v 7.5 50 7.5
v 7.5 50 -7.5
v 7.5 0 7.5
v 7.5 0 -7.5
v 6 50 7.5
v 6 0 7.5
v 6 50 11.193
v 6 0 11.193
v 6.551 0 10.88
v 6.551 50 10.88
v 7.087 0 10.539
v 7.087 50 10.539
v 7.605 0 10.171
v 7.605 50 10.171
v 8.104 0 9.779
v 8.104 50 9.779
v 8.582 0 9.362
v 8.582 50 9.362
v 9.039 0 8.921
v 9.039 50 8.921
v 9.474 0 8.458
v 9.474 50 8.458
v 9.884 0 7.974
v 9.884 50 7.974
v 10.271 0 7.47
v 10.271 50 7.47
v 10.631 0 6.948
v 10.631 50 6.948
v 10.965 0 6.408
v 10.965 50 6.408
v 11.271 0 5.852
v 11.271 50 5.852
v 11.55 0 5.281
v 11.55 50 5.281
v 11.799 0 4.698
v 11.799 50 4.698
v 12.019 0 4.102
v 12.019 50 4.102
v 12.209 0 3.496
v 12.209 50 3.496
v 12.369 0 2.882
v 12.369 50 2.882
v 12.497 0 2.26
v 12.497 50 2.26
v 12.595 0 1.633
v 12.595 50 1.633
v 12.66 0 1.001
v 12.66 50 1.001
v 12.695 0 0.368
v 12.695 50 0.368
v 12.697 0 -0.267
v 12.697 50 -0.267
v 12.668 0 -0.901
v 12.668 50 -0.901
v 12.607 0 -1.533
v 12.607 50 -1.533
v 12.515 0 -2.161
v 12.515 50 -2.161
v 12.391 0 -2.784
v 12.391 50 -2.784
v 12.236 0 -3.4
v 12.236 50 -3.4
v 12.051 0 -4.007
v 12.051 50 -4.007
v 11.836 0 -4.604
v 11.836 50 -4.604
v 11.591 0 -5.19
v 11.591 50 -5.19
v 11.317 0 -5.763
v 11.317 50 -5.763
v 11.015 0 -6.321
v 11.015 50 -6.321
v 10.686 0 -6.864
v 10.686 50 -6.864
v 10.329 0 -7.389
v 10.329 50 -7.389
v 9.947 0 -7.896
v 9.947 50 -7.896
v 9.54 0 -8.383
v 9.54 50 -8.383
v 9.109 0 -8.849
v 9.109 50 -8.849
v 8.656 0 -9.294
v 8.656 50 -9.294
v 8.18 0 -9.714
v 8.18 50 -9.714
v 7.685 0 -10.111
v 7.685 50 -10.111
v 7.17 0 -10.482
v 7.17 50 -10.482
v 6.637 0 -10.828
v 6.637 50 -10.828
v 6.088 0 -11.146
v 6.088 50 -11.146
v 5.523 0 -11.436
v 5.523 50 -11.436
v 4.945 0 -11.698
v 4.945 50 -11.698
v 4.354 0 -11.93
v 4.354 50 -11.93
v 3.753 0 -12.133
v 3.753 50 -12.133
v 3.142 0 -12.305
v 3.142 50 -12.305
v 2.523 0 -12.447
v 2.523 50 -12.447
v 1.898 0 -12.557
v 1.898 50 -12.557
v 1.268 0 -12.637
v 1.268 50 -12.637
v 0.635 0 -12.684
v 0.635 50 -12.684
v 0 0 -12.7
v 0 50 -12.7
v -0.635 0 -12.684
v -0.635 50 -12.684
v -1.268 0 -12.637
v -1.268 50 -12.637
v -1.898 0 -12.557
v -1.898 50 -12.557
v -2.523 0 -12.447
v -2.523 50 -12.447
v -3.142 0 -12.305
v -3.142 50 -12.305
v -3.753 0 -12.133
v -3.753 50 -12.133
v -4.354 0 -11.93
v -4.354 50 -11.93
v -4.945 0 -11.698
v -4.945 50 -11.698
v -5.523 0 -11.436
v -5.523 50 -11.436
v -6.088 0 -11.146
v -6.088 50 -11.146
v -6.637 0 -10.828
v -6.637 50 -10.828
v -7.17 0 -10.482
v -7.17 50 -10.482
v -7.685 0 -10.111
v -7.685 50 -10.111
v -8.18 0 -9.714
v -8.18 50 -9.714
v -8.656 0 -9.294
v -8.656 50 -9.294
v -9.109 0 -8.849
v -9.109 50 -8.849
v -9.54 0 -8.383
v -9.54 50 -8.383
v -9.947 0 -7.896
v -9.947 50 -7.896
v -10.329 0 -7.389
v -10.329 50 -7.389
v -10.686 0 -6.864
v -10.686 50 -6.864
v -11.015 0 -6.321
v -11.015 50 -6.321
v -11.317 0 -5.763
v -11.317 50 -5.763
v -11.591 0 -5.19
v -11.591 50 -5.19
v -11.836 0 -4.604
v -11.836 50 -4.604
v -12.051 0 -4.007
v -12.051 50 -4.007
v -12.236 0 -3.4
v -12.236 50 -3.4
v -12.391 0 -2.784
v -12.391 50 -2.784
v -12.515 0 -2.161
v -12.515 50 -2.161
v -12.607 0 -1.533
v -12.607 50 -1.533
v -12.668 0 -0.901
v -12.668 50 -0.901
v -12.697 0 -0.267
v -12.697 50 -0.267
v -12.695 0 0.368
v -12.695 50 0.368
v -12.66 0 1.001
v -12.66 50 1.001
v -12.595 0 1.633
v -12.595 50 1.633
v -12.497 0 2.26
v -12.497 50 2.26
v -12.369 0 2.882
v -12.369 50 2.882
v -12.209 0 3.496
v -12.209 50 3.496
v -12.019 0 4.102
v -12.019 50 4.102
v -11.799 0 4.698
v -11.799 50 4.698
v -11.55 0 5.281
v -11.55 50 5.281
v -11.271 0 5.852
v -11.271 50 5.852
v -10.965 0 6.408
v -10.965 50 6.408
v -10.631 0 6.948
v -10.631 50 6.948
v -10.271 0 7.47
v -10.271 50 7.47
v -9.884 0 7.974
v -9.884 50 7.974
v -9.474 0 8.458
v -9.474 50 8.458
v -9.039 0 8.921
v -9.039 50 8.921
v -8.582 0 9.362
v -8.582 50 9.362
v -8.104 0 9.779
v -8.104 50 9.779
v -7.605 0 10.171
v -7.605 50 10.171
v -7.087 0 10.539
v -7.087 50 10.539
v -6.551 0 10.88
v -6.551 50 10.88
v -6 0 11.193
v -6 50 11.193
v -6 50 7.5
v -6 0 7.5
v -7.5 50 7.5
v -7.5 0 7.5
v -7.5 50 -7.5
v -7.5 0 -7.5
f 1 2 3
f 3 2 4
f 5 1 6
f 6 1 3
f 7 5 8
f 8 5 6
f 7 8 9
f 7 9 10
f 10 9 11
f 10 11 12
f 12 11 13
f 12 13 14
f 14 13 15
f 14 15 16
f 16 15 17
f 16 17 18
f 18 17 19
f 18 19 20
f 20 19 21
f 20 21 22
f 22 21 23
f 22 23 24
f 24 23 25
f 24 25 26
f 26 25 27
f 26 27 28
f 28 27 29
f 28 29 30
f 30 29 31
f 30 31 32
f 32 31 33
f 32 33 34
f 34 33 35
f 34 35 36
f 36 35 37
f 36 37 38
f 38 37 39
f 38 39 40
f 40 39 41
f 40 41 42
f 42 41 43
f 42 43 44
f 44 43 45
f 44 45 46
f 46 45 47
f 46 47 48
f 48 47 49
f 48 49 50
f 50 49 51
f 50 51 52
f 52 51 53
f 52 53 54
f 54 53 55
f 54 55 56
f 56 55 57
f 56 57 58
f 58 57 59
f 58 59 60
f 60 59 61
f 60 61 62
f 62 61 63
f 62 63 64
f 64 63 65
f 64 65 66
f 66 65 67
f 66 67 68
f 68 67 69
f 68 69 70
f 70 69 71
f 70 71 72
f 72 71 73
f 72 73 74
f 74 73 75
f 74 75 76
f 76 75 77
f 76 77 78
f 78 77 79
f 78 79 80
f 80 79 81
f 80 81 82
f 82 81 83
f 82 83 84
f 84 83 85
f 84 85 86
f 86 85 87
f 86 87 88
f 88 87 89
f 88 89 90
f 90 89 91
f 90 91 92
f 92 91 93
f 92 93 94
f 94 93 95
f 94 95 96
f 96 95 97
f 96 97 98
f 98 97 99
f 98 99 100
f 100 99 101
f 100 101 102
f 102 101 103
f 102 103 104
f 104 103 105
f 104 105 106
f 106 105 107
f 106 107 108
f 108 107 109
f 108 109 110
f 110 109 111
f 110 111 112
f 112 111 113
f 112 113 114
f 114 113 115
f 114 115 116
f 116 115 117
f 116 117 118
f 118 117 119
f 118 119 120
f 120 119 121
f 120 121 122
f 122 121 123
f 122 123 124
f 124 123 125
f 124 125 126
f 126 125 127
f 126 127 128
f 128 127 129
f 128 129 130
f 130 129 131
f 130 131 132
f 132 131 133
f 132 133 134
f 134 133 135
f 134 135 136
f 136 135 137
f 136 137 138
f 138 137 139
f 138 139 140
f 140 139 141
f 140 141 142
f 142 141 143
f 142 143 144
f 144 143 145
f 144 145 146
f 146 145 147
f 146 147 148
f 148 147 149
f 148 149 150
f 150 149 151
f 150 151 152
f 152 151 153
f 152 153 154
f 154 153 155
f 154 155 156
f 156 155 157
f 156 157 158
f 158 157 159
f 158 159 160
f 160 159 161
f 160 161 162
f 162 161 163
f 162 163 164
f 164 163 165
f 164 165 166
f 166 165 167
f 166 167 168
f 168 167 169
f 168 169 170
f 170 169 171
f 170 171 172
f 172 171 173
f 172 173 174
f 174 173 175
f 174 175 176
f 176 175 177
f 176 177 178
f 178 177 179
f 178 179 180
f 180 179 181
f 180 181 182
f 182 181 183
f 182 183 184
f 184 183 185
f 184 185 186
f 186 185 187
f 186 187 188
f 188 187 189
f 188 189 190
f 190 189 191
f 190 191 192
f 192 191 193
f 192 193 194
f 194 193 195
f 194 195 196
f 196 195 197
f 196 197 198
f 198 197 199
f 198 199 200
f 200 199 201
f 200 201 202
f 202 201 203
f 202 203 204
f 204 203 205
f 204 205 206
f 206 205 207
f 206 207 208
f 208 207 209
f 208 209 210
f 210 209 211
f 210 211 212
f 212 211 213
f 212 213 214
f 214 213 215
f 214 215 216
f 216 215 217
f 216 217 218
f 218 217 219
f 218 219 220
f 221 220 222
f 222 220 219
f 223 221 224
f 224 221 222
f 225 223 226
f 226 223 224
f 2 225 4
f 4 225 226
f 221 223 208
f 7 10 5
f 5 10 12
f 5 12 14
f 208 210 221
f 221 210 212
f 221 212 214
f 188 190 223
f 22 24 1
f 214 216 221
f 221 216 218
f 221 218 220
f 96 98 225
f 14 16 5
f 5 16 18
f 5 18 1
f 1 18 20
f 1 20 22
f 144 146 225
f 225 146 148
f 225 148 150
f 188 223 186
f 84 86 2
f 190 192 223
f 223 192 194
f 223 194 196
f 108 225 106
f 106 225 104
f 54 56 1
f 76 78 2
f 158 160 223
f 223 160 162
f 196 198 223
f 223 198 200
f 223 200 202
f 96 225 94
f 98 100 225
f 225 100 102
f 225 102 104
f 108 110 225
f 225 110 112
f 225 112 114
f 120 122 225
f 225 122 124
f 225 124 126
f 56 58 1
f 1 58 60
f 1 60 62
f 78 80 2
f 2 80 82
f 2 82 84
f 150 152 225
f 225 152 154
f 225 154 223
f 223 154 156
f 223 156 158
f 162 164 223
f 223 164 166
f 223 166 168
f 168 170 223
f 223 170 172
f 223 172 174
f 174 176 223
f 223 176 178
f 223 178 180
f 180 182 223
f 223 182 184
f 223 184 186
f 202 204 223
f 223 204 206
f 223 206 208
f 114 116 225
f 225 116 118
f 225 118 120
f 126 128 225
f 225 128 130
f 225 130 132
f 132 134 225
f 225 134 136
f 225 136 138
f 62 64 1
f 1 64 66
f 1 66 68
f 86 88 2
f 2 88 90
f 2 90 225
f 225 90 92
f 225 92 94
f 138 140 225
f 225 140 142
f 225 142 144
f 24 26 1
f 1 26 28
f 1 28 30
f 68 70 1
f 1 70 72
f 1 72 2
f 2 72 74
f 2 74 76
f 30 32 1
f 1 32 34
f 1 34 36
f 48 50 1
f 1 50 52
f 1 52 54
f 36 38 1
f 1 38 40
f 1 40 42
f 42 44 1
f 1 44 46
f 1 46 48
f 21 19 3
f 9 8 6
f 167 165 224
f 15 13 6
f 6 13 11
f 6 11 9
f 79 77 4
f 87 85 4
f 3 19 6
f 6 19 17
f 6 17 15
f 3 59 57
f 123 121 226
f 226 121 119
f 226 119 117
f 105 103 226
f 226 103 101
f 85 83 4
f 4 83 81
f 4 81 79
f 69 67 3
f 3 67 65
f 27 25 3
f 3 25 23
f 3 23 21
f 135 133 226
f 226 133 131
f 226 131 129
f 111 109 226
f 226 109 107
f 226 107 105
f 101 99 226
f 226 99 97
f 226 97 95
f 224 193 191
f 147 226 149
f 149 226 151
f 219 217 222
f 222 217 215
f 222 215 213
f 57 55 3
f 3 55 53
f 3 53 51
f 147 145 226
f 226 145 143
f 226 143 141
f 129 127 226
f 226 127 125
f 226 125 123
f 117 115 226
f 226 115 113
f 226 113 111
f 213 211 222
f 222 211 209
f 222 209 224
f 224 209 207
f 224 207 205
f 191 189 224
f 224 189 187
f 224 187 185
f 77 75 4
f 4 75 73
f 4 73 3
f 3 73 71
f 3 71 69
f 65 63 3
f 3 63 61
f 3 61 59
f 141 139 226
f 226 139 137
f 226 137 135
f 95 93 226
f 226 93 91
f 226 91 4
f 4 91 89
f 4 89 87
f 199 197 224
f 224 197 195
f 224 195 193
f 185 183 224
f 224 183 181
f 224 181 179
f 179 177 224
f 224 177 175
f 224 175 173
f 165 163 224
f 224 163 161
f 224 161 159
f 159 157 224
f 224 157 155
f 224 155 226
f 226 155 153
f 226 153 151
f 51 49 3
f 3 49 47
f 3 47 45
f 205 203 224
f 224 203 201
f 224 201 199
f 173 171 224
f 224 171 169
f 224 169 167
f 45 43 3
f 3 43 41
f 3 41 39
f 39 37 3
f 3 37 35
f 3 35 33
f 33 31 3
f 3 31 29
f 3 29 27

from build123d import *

# Parameters (mm, degrees)
BOSS_EXTRUDE2_DEPTH = 50


with BuildPart() as part:
    # Sketch1 → Boss-Extrude2 (new body)
    with BuildSketch(Plane(origin=(0, 0, 0), x_dir=(1, 0, 0), z_dir=(0, 1, 0))):
        with BuildLine():
            Line((5.999643171, -7.5), (7.5, -7.5))
            Line((7.5, -7.5), (7.5, 7.5))
            Line((7.5, 7.5), (-7.5, 7.5))
            Line((-7.5, 7.5), (-7.5, -7.5))
            Line((-7.5, -7.5), (-5.999643171, -7.5))
            Line((-5.999643171, -7.5), (-5.999643171, -11.193492834))
            ThreePointArc((-5.999643171, -11.193492834), (0, 12.7), (5.999643171, -11.193492834))
            Line((5.999643171, -11.193492834), (5.999643171, -7.5))
        make_face()
    extrude(amount=BOSS_EXTRUDE2_DEPTH)


solid = part.part
